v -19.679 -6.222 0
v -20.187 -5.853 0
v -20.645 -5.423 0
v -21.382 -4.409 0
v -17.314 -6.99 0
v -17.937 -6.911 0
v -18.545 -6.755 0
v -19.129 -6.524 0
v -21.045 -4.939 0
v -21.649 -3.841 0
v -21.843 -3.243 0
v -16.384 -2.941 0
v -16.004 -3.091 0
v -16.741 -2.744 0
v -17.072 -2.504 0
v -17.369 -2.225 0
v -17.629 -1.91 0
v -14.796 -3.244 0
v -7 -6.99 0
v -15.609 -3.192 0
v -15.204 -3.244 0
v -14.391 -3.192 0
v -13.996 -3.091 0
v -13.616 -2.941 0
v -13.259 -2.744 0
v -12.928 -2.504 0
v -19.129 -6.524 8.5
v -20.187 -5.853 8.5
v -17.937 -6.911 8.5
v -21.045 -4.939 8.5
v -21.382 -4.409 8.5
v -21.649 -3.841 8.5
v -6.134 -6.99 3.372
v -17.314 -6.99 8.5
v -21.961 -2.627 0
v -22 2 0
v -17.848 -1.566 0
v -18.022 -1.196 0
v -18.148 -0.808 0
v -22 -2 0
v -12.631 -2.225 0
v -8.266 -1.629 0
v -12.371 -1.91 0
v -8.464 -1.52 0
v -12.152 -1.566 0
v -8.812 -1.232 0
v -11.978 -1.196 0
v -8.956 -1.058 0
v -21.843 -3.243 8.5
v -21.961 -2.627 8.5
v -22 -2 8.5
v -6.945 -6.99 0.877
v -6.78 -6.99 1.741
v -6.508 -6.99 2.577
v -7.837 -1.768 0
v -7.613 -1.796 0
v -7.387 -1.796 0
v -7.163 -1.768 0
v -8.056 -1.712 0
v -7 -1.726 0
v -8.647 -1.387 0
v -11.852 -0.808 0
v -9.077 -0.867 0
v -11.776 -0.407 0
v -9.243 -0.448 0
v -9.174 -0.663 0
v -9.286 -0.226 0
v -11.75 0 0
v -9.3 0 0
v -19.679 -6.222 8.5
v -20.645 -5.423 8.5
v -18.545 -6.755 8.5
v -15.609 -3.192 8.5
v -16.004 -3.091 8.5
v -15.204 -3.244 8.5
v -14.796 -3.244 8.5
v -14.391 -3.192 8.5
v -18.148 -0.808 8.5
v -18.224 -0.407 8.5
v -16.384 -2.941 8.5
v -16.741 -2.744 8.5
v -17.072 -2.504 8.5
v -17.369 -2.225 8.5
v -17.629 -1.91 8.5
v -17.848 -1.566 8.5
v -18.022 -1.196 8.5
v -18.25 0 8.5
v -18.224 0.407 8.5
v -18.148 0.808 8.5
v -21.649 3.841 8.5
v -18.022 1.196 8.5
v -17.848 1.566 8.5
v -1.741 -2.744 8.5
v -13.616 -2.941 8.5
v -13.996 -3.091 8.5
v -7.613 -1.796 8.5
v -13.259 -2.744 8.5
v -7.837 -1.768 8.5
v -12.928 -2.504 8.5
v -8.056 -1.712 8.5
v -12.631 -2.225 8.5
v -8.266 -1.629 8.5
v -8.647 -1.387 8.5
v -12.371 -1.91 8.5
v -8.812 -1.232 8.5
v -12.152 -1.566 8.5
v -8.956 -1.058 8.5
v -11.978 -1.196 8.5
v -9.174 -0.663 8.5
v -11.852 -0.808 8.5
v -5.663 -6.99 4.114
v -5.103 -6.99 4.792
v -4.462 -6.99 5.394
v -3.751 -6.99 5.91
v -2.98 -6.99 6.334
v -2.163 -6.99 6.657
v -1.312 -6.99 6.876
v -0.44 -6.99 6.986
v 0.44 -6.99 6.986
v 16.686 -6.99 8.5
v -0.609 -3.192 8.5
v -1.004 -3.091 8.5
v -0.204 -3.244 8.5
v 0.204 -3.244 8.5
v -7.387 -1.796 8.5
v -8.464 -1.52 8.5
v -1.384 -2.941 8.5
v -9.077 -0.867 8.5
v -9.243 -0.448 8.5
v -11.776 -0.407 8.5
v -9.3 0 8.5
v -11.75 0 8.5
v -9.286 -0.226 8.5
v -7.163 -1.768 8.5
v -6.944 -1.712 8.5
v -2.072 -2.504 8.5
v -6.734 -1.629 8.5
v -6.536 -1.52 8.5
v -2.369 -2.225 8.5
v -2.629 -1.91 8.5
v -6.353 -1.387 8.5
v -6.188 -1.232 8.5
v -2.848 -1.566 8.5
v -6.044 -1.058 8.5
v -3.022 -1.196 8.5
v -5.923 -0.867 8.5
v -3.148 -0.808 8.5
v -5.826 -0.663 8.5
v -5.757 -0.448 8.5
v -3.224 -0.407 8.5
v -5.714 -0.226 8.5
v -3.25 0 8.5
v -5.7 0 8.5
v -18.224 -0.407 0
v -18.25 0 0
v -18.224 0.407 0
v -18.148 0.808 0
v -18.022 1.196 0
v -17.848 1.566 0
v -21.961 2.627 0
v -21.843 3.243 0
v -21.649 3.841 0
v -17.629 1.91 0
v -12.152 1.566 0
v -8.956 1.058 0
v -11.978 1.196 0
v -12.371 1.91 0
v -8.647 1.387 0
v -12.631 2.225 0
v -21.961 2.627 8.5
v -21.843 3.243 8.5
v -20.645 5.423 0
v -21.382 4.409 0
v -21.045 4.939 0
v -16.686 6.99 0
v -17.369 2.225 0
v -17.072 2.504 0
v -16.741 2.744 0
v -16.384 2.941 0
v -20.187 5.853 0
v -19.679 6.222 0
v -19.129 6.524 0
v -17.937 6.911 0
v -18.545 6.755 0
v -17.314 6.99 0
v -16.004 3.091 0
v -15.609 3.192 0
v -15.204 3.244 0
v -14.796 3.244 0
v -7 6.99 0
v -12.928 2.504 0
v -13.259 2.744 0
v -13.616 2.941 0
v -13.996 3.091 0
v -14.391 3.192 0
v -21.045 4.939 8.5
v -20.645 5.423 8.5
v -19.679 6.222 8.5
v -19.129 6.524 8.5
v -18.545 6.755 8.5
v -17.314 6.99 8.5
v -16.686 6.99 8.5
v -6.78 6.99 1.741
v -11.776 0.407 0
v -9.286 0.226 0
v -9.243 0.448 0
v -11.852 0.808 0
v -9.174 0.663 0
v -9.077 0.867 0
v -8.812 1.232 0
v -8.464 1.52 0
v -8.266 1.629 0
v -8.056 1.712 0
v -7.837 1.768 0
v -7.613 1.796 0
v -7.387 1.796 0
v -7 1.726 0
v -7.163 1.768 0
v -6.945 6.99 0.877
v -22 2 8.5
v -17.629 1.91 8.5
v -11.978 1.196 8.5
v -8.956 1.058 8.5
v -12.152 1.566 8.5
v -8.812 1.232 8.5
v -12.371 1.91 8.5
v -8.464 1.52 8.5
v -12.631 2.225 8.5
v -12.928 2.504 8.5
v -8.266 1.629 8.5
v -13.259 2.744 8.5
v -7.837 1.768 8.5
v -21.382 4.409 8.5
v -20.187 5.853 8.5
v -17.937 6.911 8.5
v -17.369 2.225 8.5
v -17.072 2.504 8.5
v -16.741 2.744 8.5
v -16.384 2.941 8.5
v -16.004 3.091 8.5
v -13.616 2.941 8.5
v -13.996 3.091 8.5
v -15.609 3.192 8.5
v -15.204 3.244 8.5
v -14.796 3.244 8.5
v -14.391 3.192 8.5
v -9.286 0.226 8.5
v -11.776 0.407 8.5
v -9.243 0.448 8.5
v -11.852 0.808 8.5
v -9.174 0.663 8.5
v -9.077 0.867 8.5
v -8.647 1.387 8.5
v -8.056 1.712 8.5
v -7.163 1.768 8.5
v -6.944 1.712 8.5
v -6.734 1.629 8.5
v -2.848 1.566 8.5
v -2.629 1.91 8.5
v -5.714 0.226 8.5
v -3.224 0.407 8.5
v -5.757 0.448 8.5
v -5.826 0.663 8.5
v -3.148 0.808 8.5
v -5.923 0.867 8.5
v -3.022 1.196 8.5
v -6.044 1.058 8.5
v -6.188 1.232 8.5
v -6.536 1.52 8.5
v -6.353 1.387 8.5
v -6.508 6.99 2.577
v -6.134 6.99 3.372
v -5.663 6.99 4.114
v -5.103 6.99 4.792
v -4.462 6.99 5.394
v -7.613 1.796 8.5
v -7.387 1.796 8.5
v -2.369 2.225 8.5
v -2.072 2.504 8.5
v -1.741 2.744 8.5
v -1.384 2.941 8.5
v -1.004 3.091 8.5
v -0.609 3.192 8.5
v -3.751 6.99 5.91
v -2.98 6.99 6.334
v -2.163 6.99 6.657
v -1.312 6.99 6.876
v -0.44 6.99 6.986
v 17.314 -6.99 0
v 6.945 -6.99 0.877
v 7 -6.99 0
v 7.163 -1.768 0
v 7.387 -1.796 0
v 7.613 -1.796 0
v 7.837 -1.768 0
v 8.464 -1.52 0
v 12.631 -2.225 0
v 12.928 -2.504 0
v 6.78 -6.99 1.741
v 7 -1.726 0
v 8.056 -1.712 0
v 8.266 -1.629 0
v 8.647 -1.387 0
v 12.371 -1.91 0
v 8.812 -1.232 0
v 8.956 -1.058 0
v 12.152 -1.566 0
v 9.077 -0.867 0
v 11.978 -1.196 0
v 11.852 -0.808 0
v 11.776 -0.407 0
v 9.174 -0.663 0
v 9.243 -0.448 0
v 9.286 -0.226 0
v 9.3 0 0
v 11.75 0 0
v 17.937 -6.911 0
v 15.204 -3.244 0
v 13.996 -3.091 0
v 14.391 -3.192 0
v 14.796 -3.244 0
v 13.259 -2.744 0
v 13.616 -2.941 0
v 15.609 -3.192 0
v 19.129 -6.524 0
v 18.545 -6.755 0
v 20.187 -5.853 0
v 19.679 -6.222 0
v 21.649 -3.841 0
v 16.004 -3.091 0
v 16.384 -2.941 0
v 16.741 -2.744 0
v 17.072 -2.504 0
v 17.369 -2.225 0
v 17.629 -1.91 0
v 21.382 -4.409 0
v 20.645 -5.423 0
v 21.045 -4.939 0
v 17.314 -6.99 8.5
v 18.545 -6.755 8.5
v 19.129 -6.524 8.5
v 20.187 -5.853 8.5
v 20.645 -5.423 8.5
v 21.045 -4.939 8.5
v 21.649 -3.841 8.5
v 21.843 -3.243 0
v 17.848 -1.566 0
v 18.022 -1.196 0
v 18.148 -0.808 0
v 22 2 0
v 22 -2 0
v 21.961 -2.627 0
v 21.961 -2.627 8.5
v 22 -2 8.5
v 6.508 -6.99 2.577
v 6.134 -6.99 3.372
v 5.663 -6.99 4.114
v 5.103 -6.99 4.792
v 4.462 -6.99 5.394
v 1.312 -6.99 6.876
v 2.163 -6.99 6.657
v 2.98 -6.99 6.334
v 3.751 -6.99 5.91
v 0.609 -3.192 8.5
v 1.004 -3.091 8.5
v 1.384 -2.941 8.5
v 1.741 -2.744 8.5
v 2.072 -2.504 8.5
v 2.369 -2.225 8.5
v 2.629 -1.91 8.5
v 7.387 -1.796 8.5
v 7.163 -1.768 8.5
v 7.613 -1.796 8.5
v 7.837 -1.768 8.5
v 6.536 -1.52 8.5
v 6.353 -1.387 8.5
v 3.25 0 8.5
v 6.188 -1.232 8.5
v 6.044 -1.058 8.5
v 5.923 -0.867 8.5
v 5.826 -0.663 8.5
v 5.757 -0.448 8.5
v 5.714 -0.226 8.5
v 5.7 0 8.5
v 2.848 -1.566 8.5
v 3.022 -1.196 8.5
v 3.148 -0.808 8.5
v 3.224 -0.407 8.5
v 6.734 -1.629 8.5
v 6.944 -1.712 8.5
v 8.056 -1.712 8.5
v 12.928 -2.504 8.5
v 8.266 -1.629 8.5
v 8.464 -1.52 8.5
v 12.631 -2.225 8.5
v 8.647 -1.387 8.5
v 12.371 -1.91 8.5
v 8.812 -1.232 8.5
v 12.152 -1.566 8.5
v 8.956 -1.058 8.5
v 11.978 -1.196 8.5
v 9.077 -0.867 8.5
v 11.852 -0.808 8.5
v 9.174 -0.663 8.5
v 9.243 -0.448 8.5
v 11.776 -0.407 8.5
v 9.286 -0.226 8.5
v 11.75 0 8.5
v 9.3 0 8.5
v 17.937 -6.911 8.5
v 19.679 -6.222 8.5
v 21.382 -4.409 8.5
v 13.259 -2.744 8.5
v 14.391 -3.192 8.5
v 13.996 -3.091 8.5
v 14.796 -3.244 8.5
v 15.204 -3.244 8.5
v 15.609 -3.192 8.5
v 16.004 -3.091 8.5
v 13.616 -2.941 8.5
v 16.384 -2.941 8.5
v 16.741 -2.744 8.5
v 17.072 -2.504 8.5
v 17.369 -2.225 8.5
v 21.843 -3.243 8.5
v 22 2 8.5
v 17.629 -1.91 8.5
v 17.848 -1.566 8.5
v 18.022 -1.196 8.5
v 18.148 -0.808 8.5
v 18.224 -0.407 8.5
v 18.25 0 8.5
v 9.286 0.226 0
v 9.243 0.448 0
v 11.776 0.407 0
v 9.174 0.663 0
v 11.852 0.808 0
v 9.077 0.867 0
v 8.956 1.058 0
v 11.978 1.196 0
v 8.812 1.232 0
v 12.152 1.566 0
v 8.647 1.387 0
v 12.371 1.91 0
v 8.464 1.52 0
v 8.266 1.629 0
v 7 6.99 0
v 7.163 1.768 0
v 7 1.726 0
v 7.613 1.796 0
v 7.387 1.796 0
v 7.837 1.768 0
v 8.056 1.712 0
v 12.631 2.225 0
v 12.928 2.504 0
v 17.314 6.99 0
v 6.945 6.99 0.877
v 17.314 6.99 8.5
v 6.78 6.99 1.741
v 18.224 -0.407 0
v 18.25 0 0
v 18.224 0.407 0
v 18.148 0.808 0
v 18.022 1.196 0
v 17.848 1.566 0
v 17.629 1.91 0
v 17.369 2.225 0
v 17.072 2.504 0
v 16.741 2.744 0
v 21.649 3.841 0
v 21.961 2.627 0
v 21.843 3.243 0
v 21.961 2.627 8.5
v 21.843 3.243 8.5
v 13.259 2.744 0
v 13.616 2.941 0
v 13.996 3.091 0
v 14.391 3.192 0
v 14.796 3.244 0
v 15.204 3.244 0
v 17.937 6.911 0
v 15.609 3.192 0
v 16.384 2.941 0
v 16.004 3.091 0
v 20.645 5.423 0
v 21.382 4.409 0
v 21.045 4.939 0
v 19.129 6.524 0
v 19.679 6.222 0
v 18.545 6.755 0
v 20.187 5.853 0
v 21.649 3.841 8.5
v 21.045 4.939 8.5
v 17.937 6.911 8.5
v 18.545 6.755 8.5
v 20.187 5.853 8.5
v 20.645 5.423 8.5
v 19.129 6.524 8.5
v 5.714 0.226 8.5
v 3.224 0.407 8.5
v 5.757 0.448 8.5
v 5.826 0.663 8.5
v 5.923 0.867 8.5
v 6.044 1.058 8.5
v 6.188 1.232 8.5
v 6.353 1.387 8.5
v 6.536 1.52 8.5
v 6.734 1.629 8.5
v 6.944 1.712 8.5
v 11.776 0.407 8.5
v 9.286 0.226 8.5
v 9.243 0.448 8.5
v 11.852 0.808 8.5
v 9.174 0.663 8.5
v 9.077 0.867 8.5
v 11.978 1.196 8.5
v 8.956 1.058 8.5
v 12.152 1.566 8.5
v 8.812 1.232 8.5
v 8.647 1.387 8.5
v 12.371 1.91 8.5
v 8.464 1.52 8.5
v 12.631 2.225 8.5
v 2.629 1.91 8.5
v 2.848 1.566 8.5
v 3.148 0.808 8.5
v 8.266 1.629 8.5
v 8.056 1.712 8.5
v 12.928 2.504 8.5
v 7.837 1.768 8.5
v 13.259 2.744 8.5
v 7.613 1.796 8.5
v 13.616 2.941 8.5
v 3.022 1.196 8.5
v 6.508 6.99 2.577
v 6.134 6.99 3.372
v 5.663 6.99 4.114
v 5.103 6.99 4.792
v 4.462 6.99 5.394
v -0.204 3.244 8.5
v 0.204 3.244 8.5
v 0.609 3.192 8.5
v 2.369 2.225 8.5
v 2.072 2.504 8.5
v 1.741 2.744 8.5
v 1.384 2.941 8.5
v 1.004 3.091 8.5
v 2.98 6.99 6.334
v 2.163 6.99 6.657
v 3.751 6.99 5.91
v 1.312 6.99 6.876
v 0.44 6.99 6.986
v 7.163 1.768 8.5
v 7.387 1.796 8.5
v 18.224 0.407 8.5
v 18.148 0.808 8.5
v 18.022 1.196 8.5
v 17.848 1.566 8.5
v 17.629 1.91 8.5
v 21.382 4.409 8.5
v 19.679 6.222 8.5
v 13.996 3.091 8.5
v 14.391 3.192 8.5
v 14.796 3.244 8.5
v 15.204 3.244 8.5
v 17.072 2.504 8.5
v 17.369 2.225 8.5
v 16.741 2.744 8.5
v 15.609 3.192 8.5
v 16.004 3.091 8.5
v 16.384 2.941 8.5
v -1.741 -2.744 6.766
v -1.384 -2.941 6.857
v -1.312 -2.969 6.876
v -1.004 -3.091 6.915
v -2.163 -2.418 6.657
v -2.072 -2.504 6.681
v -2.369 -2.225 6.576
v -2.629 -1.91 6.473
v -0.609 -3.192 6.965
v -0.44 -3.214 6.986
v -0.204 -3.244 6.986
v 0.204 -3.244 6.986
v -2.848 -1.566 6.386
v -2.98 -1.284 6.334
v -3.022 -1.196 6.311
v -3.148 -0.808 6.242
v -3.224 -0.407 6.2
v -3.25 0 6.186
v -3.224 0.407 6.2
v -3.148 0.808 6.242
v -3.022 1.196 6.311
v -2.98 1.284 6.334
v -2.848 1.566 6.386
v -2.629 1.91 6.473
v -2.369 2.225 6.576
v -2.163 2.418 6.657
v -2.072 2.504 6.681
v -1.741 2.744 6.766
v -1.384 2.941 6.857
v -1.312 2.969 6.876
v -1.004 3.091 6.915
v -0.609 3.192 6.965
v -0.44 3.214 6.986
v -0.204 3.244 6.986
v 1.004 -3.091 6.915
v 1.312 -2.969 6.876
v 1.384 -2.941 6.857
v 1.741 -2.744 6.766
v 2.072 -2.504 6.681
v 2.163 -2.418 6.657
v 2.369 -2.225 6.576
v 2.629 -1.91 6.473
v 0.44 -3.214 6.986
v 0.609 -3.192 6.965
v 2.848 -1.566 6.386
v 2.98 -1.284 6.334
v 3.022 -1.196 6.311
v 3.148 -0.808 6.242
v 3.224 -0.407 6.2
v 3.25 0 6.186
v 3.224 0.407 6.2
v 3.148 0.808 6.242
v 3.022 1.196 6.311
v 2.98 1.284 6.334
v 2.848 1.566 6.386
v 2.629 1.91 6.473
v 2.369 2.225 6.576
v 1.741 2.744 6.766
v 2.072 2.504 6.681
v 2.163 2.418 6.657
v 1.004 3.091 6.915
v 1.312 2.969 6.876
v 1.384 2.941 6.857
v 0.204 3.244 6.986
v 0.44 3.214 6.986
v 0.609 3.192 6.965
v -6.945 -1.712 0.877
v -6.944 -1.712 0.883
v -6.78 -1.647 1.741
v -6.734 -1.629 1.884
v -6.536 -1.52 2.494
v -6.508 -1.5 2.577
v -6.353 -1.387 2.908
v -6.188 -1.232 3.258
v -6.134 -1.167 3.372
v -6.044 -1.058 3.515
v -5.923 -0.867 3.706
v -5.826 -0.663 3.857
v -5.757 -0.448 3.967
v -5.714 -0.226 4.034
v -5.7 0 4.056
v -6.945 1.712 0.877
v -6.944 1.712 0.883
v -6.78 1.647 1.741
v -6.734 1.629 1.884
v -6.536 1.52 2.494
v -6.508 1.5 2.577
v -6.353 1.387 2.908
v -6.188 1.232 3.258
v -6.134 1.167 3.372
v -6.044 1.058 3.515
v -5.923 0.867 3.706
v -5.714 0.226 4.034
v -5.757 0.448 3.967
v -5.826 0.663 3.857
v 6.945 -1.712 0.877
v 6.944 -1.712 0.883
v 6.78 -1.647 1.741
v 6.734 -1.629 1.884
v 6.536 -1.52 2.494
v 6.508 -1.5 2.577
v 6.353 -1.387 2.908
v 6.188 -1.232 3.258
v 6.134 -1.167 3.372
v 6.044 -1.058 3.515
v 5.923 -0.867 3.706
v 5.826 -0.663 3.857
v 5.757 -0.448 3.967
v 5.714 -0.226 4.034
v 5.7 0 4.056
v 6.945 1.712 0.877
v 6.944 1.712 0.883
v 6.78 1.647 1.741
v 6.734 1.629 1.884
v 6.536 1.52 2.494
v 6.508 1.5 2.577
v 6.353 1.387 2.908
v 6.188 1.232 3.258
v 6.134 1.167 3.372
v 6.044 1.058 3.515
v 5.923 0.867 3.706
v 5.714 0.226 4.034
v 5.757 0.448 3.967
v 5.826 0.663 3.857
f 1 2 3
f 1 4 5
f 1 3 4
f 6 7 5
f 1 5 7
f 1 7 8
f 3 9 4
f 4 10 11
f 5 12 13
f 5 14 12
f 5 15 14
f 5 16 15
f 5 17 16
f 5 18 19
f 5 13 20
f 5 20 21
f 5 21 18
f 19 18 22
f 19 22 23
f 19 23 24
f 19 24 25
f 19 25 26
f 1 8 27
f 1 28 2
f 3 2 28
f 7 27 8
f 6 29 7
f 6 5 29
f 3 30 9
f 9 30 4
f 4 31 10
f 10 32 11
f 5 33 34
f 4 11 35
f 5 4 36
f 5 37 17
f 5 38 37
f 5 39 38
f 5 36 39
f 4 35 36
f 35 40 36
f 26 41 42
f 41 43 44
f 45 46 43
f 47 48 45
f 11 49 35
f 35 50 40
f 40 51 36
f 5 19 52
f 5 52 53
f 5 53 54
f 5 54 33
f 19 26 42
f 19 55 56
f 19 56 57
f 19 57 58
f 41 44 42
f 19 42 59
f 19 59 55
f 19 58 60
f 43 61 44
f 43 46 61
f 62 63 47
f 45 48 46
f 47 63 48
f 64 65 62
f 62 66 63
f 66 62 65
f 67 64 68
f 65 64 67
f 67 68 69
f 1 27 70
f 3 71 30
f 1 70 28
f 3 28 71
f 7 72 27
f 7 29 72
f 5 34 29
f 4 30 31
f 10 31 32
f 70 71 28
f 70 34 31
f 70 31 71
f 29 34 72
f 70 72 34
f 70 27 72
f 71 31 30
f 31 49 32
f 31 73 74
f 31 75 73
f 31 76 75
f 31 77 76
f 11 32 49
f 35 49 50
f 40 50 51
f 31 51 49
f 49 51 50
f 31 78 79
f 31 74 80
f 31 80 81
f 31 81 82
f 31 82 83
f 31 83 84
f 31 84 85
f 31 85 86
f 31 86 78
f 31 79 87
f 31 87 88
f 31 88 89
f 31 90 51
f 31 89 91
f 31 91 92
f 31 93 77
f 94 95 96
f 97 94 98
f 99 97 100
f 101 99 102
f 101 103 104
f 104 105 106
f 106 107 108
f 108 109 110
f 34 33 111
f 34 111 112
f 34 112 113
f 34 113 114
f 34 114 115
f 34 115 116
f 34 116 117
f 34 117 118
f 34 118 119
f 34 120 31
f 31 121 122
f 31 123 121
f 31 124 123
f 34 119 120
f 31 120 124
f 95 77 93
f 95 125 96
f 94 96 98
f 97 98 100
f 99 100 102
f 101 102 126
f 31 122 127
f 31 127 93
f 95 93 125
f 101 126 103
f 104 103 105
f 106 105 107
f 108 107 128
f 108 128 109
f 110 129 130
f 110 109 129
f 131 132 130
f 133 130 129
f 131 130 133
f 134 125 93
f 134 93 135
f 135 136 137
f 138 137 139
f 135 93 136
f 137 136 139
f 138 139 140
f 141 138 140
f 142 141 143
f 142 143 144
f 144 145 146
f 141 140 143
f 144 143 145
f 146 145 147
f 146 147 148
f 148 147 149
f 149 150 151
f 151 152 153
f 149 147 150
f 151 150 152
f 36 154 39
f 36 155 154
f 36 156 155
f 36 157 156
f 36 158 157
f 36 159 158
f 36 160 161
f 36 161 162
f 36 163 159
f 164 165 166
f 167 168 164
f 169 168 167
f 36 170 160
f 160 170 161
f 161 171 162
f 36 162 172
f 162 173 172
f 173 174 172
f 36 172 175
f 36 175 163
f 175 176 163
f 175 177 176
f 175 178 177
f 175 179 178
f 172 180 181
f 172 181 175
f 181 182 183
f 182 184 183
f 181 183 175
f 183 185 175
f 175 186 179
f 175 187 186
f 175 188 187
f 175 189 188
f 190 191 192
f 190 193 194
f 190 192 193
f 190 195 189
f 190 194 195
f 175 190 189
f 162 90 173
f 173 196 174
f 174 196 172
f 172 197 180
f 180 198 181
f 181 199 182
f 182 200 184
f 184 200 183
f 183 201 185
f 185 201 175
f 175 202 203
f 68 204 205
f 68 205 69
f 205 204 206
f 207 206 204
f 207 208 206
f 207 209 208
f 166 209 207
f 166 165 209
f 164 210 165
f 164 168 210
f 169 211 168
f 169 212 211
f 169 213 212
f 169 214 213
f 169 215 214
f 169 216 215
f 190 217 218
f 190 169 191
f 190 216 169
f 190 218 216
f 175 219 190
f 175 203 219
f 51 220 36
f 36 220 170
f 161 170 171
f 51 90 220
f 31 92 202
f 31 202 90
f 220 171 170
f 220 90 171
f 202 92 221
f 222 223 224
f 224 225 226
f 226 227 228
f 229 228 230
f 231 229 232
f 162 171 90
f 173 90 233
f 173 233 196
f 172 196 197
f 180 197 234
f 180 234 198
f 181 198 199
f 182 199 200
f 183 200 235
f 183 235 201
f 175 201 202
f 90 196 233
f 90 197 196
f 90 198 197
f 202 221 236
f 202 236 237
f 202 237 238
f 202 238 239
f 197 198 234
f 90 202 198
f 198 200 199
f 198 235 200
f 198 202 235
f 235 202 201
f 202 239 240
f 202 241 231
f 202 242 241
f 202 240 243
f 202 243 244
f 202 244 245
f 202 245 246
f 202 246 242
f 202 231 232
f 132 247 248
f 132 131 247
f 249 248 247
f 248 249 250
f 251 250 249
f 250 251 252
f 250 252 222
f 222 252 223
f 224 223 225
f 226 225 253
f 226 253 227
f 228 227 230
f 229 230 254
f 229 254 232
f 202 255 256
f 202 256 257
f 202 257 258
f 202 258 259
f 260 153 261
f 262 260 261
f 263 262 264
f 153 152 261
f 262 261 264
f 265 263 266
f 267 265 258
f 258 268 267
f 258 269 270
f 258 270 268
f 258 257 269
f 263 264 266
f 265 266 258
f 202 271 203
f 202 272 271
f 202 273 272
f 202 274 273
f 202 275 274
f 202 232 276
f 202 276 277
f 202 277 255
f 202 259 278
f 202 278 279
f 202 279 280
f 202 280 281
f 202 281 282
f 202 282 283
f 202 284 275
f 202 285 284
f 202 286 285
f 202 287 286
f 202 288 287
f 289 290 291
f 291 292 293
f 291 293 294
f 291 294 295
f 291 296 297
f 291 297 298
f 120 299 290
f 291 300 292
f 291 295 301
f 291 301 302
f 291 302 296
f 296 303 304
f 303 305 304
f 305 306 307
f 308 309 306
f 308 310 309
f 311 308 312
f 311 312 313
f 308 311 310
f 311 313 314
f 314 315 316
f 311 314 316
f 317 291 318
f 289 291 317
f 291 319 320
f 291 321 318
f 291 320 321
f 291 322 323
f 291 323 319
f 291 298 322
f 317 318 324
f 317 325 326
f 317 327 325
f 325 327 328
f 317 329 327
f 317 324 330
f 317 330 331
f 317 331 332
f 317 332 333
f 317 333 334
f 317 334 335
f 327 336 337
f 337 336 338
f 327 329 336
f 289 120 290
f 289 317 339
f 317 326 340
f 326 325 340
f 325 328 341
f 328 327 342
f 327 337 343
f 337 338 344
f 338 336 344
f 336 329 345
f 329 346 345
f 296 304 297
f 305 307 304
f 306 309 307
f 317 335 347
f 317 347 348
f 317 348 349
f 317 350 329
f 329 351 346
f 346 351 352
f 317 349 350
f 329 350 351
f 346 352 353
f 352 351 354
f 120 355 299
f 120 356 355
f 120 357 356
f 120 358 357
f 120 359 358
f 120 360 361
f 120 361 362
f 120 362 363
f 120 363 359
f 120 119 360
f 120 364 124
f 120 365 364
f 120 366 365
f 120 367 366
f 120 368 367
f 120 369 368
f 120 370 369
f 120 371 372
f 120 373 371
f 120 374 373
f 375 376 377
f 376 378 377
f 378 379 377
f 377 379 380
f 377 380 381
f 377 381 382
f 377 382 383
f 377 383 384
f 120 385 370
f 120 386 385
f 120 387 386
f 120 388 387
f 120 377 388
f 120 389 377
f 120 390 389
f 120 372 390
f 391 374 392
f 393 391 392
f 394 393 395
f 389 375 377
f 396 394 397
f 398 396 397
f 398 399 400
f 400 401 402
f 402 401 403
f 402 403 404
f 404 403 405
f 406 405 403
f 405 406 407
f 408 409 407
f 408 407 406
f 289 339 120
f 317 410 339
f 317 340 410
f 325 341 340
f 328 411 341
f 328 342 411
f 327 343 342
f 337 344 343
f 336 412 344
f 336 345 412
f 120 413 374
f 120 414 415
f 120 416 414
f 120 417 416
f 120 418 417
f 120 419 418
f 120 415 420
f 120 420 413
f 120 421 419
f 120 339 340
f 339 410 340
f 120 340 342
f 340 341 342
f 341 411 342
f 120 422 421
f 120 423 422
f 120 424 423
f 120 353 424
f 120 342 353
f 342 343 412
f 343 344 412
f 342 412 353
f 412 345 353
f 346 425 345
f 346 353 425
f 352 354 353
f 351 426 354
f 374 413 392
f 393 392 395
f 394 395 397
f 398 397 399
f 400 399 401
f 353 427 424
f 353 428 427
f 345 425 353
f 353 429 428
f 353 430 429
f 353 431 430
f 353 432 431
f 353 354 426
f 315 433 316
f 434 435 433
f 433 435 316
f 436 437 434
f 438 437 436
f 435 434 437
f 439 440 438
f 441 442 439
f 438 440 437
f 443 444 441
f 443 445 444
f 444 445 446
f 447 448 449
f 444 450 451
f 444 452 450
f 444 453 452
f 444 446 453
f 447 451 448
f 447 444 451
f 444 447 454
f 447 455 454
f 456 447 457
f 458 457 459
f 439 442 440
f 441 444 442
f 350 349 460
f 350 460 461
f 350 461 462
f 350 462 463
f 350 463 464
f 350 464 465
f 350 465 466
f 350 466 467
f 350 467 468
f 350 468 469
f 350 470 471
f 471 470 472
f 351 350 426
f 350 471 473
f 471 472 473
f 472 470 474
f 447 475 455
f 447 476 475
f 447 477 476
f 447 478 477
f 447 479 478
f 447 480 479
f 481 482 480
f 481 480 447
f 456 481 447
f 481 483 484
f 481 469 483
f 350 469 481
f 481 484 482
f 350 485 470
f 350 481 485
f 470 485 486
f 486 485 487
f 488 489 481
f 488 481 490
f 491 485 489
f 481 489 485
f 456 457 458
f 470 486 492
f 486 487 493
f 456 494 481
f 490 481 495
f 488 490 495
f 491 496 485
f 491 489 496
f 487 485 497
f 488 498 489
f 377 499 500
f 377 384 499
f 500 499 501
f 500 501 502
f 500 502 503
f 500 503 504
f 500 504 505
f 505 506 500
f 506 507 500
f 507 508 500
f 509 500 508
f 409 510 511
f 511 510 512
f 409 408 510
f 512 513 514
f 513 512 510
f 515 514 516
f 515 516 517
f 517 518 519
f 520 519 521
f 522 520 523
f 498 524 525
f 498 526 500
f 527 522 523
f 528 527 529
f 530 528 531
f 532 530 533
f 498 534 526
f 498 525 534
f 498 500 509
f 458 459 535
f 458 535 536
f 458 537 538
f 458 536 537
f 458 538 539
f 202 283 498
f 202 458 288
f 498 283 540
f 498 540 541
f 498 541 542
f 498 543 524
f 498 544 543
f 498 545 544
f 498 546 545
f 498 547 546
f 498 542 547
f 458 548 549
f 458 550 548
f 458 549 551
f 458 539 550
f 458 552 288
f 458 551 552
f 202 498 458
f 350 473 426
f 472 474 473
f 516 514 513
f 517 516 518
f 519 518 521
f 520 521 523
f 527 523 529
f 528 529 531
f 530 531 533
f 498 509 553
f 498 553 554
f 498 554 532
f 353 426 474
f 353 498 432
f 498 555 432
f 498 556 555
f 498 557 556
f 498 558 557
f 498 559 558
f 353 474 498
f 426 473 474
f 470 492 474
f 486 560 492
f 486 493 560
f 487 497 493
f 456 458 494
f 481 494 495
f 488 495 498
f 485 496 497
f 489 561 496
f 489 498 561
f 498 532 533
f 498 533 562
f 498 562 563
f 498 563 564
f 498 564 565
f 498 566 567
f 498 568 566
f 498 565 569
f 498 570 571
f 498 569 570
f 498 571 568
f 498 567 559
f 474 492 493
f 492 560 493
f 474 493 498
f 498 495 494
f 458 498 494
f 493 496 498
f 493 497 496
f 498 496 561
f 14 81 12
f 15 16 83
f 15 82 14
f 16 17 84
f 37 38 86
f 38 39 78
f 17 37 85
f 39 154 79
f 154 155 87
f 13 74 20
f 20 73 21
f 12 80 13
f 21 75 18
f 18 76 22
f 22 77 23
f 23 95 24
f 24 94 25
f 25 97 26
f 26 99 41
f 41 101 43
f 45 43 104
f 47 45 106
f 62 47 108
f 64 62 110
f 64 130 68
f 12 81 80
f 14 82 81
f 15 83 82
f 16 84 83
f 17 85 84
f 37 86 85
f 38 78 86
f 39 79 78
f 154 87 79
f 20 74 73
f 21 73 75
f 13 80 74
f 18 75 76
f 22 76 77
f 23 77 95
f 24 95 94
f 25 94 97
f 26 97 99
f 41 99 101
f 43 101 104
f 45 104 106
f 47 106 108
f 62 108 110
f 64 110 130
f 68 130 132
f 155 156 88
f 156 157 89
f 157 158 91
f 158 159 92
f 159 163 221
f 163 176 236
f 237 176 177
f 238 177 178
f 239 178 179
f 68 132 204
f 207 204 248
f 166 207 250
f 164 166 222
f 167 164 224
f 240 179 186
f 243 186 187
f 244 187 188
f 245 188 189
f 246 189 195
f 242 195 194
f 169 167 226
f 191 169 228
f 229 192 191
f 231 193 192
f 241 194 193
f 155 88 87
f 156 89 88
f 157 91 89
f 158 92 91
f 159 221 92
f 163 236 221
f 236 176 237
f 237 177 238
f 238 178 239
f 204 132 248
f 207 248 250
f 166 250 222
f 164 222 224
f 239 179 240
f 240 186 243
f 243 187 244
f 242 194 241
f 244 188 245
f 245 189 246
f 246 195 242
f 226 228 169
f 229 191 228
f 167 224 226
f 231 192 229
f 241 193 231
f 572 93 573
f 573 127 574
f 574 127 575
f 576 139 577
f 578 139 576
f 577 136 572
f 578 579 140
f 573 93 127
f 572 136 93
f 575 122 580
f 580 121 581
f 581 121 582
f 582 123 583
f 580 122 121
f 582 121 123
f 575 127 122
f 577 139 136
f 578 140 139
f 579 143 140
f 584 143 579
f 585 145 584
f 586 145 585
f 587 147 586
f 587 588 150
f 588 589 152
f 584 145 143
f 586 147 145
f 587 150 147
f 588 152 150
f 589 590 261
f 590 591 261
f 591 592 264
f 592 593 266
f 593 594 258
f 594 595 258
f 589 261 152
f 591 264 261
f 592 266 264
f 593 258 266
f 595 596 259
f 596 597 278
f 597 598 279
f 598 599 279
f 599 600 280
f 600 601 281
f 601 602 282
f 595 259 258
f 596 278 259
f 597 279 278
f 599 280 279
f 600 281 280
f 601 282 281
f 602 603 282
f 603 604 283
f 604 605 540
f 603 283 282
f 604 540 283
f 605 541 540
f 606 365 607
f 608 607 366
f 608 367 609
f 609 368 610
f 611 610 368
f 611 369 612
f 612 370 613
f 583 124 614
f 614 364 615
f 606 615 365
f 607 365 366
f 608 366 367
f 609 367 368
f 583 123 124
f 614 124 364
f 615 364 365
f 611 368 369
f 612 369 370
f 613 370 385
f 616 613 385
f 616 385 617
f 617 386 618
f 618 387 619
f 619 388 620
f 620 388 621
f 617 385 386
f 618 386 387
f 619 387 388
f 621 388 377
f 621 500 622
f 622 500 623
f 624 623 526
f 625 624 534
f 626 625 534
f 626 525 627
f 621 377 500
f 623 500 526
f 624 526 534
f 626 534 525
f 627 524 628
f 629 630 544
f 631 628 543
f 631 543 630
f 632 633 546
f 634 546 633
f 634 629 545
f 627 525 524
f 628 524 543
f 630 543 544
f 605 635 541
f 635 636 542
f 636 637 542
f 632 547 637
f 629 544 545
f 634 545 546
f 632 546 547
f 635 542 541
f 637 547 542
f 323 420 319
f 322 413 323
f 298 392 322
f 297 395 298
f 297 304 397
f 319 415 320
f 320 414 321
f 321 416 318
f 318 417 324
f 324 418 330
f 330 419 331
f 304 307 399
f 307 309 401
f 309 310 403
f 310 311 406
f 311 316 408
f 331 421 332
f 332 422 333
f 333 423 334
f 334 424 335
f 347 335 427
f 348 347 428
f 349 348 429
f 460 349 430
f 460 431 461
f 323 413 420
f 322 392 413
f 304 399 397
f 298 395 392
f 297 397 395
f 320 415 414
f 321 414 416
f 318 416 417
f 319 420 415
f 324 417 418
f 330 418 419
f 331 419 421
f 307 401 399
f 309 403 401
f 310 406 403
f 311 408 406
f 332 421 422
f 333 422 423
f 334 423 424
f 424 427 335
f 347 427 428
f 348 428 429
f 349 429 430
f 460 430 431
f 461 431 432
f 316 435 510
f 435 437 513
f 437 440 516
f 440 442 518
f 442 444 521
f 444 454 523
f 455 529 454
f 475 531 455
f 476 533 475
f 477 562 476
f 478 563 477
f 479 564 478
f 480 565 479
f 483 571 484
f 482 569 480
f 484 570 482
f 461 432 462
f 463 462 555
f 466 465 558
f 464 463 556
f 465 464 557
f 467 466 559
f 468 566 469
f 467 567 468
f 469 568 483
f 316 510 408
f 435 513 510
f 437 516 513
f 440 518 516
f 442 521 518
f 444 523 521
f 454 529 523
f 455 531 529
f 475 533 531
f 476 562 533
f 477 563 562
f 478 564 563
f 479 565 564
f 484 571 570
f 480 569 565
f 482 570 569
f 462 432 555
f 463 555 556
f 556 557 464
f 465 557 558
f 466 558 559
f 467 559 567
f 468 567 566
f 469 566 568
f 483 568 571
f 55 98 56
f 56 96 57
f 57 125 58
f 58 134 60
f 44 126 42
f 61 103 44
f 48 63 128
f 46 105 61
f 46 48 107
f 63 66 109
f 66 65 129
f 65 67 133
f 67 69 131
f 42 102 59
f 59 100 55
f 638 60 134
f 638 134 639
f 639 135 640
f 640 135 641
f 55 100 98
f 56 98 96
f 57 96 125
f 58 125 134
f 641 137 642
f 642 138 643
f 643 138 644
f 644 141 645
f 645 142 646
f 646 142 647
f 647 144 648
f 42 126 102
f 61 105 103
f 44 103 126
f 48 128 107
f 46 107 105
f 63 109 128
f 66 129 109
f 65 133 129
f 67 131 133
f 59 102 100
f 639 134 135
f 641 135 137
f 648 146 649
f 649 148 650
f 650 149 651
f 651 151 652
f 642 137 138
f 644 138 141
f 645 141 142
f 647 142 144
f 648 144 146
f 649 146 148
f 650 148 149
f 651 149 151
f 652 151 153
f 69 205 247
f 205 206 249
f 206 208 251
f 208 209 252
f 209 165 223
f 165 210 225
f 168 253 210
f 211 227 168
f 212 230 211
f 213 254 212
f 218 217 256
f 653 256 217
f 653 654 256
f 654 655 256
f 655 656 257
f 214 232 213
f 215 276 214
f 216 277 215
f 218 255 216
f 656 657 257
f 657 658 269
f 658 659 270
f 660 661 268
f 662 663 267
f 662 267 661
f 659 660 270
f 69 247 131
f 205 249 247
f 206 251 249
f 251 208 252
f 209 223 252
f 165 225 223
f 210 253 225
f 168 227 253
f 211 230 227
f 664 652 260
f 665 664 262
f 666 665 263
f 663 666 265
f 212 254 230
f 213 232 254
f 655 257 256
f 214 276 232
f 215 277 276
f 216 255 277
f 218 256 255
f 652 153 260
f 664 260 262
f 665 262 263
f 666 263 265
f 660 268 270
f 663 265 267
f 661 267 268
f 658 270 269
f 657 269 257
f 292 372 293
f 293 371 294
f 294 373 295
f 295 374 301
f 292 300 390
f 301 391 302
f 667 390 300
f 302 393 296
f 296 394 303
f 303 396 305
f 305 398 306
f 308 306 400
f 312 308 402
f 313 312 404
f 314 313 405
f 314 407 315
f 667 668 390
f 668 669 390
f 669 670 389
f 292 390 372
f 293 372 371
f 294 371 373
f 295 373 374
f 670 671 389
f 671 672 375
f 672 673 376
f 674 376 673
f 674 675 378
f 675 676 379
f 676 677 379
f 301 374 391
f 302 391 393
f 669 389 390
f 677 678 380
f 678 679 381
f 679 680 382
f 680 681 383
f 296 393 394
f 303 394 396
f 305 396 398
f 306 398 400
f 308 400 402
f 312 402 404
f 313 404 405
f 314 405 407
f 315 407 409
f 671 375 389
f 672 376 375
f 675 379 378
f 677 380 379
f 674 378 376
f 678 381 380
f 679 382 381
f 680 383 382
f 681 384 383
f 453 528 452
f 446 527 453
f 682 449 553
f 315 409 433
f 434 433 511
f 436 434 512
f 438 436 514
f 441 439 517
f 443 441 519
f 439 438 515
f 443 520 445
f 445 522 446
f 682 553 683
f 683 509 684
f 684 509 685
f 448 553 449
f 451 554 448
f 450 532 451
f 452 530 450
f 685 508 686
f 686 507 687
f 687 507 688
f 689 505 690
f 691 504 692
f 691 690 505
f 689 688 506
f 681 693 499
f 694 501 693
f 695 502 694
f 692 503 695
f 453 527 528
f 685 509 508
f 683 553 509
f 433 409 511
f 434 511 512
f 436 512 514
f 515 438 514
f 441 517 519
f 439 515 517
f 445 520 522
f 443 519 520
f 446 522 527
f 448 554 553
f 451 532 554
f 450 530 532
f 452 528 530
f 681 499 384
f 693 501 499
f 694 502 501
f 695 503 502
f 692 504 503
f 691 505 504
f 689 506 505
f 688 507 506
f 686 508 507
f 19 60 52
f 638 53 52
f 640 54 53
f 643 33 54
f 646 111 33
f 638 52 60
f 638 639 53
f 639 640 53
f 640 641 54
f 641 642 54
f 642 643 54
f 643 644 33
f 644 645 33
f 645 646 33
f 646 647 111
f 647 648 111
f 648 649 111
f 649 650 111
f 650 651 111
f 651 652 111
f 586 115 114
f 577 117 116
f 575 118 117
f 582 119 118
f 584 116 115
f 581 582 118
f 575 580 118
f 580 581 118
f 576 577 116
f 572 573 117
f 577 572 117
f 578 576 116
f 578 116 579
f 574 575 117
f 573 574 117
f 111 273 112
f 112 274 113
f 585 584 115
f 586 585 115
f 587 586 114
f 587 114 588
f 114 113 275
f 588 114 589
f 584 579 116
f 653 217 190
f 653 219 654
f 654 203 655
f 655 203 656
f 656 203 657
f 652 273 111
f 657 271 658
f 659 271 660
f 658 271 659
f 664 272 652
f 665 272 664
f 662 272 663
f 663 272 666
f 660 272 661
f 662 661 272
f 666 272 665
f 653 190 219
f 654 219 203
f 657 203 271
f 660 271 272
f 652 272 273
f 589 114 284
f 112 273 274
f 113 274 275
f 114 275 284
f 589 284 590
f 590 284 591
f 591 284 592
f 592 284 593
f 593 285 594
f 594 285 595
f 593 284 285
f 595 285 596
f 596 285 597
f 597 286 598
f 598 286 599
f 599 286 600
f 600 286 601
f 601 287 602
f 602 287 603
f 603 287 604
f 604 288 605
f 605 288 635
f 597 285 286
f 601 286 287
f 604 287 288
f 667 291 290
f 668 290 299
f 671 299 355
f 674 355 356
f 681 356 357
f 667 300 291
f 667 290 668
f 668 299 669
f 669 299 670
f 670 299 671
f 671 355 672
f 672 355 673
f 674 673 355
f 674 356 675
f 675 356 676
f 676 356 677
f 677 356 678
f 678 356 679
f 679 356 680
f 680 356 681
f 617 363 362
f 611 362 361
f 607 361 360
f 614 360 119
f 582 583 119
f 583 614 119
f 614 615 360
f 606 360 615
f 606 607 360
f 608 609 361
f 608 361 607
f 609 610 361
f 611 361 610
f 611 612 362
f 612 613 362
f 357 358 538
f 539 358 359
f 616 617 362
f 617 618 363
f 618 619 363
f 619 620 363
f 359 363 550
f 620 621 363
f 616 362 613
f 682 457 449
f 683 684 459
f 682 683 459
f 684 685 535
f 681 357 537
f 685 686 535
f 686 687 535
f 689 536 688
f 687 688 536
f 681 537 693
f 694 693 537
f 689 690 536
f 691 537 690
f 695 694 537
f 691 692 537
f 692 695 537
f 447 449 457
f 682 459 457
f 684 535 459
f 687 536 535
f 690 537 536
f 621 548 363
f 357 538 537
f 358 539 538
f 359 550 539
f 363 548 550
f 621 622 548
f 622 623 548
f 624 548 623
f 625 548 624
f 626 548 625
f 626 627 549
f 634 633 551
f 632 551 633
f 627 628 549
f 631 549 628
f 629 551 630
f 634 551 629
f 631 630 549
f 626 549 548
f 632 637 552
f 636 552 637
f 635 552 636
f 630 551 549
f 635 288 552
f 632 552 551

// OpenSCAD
$fn = 50;

difference() {
	union() {
		hull() {
			translate(v = [-17.0, 2.0, 0]) {
				cylinder(h = 8.5, r = 5);
			}
			translate(v = [17.0, 2.0, 0]) {
				cylinder(h = 8.5, r = 5);
			}
			translate(v = [-17.0, -2.0, 0]) {
				cylinder(h = 8.5, r = 5);
			}
			translate(v = [17.0, -2.0, 0]) {
				cylinder(h = 8.5, r = 5);
			}
		}
	}
	union() {
		translate(v = [-15.0, 0.0, -1]) {
			cylinder(h = 10.5, r = 3.25);
		}
		translate(v = [0.0, 0.0, -1]) {
			cylinder(h = 10.5, r = 3.25);
		}
		translate(v = [15.0, 0.0, -1]) {
			cylinder(h = 10.5, r = 3.25);
		}
		translate(v = [-7.5, 0.0, -1]) {
			cylinder(h = 10.5, r = 1.8);
		}
		translate(v = [7.5, 0.0, -1]) {
			cylinder(h = 10.5, r = 1.8);
		}
		translate(v = [0.0, -68.5, 0]) {
			rotate(a = [-90, 0, 0]) {
				cylinder(h = 137, r = 7);
			}
		}
	}
}
